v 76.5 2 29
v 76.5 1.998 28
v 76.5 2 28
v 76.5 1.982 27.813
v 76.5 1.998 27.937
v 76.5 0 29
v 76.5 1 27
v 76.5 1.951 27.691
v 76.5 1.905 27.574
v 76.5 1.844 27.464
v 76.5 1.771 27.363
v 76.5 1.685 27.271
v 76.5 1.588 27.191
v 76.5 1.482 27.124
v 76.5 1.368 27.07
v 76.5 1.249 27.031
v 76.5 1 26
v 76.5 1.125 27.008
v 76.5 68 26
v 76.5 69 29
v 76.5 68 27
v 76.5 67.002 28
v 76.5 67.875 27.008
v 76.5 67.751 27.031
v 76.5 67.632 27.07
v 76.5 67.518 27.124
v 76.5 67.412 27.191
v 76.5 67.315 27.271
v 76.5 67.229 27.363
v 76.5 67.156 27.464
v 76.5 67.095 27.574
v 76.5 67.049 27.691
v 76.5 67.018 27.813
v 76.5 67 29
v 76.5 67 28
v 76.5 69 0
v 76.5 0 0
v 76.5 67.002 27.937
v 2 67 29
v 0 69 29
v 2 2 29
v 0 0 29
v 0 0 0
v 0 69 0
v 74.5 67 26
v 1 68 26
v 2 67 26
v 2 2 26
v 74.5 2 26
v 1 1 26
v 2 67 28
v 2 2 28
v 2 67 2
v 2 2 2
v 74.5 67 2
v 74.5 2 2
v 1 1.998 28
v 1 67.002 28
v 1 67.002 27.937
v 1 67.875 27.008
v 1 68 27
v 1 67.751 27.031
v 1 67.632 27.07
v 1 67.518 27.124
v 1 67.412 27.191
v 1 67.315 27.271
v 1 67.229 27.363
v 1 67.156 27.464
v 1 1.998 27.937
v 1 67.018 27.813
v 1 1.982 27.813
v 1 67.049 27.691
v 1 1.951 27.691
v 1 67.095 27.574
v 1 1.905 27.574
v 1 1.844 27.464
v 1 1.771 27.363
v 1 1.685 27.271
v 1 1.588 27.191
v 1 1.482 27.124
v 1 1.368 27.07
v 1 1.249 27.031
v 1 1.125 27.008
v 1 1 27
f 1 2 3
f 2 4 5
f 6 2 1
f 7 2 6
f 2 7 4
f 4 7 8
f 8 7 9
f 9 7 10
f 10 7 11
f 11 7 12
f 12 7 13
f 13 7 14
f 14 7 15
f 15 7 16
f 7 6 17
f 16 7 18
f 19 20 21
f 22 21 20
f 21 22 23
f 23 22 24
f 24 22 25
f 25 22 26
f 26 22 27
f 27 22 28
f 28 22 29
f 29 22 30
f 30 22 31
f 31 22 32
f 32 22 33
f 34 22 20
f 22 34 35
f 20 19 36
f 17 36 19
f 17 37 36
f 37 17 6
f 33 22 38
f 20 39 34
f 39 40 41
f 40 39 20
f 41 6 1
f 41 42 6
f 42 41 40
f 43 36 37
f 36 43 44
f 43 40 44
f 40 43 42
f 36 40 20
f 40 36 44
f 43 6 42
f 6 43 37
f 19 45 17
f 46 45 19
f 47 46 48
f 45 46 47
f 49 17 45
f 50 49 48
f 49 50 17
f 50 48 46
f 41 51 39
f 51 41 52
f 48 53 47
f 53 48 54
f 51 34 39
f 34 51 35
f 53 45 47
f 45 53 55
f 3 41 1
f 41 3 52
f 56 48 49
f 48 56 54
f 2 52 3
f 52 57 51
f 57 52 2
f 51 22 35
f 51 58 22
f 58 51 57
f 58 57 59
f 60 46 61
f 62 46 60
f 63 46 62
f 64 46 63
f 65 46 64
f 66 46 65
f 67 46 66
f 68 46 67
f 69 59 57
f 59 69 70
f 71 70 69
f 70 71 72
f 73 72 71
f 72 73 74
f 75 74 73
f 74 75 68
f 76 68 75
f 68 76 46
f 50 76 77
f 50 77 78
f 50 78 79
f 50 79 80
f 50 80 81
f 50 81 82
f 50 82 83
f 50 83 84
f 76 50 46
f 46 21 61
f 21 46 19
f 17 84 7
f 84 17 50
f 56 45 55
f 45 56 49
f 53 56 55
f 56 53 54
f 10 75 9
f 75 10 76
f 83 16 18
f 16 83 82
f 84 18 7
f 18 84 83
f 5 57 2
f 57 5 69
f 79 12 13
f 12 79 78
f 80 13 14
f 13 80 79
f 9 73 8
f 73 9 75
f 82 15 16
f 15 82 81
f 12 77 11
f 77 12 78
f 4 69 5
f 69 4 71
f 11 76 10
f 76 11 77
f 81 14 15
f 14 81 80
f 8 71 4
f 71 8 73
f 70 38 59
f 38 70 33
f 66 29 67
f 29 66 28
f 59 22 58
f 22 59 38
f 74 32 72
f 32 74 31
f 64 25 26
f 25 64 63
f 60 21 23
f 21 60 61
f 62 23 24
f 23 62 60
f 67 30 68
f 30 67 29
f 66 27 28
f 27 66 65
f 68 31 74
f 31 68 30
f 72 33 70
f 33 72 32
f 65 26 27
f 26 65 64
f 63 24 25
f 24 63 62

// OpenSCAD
DIM = [
	76.5, // Spielerinnenablage richtung
	69, // Links-Rechts
	29
];

WALL  = 2;
FLOOR = 2;
LID   = 3;



union(){
	difference(){
		cube(DIM);
	
		// Lid Opening
		translate([ WALL , WALL , DIM.z-LID ]) cube([ DIM.x-WALL+0.1 , DIM.y-2*WALL , LID+0.1 ]);
		translate([ WALL-1 , WALL-1 , DIM.z-LID ]) cube([ DIM.x-1+0.1 , DIM.y-2 , 2 ]);
		
		// Storage
		translate([ WALL , WALL , FLOOR ]) cube([ DIM.x-2*WALL , DIM.y-2*WALL , DIM.z ]);
	
	}
	
	// Lid Opening Thingies
	translate([ 0 , 1 , DIM.z-1 ]) rotate([0,90,0]) cylinder(DIM.x,r=1,$fn=50);
	translate([ 0 , DIM.y-1 , DIM.z-1 ]) rotate([0,90,0]) cylinder(DIM.x,r=1,$fn=50);
	
	//translate([ 1 , 1 , OUT_Z-1 ]) rotate([-90,0,0]) cylinder(OUT_Y-1,r=1,$fn=50);
}
